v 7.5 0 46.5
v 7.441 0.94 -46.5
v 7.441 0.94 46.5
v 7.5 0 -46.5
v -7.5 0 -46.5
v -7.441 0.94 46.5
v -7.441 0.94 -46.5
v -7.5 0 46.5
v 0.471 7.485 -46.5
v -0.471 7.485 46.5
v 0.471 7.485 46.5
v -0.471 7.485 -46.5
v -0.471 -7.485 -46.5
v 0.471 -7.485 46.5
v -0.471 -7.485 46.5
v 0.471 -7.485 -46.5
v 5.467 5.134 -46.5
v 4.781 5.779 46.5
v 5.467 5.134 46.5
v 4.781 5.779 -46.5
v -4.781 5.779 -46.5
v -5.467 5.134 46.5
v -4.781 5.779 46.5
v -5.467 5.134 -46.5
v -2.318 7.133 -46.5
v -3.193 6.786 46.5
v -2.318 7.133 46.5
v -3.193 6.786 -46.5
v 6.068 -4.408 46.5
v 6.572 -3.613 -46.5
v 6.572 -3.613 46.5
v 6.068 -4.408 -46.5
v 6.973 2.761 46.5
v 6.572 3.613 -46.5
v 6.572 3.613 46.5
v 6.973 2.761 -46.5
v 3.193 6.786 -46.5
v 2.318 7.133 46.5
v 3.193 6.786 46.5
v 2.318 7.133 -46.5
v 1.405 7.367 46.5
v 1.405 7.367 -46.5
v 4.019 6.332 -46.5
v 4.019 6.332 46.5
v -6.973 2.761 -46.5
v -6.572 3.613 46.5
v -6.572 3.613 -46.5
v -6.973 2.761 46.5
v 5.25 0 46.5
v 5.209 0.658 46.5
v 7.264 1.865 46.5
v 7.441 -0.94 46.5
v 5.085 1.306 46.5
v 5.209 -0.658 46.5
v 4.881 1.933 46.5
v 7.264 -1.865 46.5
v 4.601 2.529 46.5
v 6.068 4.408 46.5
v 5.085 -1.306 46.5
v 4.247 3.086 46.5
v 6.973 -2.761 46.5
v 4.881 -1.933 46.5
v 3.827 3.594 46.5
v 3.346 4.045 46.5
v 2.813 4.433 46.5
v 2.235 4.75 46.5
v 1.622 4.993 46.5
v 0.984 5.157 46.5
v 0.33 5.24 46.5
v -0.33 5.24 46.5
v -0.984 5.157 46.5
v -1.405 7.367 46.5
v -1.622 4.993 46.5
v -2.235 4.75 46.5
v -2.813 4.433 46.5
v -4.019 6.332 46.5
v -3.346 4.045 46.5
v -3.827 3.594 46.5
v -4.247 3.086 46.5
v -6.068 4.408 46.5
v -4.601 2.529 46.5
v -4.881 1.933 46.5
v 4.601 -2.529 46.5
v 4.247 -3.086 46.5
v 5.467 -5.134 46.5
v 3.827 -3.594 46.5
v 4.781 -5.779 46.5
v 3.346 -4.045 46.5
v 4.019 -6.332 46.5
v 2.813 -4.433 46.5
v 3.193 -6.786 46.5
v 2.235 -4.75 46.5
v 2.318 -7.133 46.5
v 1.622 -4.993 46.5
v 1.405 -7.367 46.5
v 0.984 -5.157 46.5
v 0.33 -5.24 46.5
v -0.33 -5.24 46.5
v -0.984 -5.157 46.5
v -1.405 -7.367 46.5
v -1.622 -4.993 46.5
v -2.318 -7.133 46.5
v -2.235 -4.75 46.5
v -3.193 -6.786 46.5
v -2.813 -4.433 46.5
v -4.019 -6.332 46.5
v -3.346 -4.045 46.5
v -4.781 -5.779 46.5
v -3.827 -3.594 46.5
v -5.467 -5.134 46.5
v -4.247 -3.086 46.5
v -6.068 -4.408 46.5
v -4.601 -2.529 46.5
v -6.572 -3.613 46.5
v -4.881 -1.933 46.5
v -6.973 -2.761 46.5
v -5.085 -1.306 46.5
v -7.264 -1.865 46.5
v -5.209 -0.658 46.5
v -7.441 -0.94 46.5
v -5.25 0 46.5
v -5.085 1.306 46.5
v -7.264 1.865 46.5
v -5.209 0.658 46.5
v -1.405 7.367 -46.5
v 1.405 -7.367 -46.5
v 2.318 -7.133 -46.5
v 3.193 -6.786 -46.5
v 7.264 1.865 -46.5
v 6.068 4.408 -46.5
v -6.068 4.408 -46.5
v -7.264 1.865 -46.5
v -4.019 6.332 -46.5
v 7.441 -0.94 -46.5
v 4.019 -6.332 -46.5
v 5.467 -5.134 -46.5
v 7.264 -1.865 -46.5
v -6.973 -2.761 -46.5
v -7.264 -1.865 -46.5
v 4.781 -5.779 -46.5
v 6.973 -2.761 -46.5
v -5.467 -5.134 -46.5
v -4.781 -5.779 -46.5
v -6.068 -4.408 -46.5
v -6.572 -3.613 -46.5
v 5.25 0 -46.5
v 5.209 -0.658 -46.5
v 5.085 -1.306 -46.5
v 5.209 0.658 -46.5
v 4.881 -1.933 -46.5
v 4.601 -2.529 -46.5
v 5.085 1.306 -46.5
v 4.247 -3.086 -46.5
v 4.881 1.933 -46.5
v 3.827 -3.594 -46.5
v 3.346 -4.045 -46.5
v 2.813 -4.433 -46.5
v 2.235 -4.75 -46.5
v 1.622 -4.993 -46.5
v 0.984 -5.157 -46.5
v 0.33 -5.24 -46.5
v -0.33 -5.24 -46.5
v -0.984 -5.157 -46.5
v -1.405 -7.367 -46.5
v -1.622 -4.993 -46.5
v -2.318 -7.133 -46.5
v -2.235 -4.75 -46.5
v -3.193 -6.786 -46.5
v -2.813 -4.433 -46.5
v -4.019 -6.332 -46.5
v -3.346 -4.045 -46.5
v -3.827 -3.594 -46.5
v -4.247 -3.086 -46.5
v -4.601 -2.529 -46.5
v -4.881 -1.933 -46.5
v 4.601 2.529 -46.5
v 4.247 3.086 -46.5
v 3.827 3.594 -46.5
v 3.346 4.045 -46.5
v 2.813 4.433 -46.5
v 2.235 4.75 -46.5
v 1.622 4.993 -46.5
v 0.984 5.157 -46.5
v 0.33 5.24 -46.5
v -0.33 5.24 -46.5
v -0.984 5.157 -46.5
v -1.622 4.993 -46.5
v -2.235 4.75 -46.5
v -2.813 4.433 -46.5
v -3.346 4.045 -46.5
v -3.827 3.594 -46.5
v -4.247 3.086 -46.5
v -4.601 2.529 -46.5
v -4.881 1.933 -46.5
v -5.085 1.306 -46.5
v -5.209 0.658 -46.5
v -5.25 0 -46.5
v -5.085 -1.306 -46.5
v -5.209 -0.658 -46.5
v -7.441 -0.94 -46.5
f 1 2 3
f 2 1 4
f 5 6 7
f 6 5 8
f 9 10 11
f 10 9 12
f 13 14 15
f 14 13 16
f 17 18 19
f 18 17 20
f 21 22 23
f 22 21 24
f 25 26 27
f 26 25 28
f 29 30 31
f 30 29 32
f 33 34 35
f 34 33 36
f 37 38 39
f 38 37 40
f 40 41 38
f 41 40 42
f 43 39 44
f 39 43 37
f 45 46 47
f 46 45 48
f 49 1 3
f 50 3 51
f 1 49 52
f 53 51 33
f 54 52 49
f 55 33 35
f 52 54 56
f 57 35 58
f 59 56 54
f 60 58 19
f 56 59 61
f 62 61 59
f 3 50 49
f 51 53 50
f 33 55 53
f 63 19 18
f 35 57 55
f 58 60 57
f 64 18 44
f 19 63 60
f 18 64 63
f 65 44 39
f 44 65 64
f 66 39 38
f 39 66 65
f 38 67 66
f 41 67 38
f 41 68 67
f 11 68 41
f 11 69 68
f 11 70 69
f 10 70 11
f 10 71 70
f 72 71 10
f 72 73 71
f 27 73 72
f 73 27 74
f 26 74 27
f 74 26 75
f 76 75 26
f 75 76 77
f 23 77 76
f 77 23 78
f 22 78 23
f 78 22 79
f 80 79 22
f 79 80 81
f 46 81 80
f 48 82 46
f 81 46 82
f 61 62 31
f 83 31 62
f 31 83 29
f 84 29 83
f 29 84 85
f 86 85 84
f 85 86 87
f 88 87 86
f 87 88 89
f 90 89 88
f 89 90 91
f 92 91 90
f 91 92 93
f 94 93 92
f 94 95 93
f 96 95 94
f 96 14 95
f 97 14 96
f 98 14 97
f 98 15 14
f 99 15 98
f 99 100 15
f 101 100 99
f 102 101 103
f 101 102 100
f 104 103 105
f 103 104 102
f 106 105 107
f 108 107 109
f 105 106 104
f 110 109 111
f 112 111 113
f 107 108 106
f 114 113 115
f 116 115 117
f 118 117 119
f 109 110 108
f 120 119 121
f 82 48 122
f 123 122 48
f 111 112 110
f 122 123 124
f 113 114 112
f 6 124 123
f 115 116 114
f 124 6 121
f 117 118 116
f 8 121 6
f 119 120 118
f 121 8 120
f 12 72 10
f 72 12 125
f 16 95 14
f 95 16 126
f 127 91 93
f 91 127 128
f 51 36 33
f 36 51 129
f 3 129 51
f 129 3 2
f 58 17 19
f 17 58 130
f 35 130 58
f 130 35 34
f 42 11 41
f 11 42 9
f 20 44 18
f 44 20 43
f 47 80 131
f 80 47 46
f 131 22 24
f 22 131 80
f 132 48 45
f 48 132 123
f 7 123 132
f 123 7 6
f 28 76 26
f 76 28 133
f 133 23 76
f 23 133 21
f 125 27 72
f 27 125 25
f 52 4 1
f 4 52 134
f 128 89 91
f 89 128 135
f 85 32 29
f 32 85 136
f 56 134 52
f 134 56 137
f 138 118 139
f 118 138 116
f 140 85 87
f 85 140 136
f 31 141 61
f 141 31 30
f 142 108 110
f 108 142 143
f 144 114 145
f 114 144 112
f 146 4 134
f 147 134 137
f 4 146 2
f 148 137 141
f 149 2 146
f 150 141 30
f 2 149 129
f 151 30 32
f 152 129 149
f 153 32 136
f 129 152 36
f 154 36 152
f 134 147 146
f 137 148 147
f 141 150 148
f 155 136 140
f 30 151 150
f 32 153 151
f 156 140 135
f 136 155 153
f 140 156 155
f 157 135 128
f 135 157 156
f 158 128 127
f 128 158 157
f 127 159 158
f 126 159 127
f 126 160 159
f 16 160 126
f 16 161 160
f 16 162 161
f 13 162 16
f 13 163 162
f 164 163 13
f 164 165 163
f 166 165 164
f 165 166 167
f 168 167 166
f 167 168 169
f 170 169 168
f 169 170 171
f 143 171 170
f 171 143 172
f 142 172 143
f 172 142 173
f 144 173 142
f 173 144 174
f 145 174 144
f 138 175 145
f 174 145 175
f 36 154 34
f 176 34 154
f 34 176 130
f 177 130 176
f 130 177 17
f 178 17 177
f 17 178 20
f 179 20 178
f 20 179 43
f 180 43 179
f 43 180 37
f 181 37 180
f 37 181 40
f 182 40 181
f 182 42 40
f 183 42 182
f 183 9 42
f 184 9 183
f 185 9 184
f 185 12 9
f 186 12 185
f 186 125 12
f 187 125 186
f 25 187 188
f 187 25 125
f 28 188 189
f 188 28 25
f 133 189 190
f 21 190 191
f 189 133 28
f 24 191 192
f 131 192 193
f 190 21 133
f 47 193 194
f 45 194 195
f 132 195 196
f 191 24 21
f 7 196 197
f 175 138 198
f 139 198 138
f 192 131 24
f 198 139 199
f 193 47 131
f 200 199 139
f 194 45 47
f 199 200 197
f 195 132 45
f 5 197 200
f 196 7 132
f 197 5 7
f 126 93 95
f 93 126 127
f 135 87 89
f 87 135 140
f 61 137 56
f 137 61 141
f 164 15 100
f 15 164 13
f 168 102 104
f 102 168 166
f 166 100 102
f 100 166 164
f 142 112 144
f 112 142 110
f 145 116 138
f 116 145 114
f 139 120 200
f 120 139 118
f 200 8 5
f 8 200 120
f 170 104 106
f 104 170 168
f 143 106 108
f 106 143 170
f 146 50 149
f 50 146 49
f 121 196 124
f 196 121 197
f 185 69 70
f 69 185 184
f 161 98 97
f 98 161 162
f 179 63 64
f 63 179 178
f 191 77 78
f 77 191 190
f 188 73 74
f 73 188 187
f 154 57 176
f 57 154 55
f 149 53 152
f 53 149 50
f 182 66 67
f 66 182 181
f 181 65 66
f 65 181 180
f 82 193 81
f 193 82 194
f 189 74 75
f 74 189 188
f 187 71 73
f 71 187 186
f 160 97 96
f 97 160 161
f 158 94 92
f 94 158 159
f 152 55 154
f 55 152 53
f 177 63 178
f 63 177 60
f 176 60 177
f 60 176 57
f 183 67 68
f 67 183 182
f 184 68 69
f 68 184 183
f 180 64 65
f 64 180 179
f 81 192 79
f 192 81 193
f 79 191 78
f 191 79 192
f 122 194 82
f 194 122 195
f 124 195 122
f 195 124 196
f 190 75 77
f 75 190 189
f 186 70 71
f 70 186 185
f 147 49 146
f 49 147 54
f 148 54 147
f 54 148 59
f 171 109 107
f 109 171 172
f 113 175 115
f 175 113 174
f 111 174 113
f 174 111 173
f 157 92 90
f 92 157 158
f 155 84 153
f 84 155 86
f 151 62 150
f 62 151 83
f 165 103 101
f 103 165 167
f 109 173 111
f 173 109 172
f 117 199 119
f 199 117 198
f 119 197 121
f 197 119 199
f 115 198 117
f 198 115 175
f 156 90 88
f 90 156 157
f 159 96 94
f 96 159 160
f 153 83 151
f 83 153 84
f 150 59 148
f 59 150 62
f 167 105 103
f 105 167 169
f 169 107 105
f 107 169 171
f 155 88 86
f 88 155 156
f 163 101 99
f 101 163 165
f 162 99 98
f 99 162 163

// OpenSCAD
$fn = 50;


difference() {
	union() {
		translate(v = [0, 0, -46.5000000000]) {
			cylinder(h = 93, r = 7.5000000000);
		}
	}
	union() {
		translate(v = [0, 0, -100.0000000000]) {
			cylinder(h = 200, r = 5.2500000000);
		}
	}
}
